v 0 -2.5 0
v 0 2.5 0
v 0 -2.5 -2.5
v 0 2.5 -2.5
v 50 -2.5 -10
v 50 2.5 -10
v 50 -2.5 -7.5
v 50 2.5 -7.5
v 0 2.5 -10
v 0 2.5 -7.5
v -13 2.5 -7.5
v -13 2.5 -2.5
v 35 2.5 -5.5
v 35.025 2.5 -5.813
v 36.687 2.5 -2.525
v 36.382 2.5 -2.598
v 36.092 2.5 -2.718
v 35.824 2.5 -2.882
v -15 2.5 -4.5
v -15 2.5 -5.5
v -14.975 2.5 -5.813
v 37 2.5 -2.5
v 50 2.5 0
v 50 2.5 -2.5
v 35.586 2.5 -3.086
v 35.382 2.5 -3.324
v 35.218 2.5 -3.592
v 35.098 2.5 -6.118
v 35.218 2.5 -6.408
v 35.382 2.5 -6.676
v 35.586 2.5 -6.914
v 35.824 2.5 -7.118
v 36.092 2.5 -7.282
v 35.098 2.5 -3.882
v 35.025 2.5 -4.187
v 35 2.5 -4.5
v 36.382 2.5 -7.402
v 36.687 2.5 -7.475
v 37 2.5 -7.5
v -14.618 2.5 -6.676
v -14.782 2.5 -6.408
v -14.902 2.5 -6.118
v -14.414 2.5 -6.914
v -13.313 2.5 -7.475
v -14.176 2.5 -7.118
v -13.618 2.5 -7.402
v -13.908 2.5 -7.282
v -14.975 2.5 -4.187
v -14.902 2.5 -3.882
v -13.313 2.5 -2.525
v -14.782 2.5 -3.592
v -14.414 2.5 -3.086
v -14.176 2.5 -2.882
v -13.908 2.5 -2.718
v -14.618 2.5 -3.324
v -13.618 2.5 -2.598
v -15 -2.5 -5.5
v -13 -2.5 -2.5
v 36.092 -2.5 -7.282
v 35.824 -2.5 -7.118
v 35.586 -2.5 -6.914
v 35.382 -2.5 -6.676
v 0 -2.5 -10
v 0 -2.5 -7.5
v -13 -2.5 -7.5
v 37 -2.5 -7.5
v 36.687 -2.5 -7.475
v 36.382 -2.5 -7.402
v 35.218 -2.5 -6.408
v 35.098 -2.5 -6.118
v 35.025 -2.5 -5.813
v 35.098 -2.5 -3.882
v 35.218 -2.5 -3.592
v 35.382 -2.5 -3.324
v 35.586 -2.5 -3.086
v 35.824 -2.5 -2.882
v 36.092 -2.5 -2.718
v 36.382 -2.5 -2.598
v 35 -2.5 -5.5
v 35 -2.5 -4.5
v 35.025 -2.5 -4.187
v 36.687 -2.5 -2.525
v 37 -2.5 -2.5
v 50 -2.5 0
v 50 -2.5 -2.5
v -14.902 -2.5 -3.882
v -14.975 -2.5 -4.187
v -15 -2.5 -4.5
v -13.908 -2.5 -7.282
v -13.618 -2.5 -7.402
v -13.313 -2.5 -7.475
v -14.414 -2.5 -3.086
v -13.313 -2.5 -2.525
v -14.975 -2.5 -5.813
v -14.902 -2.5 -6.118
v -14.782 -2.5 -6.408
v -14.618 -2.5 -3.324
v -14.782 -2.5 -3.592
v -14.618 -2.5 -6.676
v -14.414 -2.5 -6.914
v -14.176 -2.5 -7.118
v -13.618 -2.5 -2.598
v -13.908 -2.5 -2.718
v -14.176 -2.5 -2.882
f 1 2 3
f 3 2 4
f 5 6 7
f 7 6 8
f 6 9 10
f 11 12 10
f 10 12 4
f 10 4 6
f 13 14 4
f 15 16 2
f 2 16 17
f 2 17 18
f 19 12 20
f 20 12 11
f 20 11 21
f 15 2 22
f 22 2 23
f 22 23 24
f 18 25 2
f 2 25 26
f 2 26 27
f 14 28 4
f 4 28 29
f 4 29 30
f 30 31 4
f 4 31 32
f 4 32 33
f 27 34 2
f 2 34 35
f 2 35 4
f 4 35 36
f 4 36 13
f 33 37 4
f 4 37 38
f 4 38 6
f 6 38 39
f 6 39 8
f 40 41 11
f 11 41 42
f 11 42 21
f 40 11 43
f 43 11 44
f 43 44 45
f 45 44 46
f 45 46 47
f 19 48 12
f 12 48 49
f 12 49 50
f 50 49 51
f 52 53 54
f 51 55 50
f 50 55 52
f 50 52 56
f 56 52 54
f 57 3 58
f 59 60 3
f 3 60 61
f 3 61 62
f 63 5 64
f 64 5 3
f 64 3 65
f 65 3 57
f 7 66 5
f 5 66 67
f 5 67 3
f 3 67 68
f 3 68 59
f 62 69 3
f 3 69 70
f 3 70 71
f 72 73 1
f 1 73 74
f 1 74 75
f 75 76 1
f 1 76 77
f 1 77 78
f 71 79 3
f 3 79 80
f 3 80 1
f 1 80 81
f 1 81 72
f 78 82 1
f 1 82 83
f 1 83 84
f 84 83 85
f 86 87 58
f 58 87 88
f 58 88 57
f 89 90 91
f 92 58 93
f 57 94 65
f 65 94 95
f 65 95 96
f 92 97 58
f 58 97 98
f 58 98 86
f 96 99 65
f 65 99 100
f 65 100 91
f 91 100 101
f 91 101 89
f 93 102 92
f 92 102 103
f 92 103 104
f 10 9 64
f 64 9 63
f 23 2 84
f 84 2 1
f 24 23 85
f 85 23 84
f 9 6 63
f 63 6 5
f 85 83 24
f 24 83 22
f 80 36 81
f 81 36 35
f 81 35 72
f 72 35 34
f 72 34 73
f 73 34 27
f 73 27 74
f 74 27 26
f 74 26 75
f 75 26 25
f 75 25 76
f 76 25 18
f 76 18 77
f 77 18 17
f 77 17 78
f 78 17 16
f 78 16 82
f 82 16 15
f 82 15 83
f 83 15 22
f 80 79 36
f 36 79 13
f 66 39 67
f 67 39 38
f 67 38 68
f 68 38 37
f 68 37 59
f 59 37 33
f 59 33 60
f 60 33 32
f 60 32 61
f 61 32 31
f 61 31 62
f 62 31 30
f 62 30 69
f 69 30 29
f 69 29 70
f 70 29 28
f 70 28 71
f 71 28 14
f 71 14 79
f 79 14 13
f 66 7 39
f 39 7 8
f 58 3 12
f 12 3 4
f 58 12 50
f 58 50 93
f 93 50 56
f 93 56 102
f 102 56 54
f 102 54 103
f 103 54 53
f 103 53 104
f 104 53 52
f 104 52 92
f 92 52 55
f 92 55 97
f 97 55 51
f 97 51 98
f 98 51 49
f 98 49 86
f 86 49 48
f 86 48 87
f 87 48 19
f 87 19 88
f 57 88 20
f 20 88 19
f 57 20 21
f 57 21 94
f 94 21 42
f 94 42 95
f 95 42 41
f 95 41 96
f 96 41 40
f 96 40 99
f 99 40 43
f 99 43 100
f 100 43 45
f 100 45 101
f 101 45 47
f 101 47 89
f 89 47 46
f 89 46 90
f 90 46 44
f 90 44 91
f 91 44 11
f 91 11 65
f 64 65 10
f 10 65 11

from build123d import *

# Parameters (mm, degrees)
CROQUIS1_W              = 50
CROQUIS1_H              = 10
SALIENTE_EXTRUIR1_DEPTH = 2.5
CORTAR_EXTRUIR1_DEPTH   = 52.23475383
SALIENTE_EXTRUIR2_DEPTH = 5


with BuildPart() as part:
    # Croquis1 → Saliente-Extruir1 (new, symmetric)
    with BuildSketch(Plane(origin=(0, 0, 0), x_dir=(1, 0, 0), z_dir=(0, 1, 0))):
        with Locations((25, 5)):
            Rectangle(CROQUIS1_W, CROQUIS1_H)
    extrude(amount=SALIENTE_EXTRUIR1_DEPTH, both=True)

    # Croquis2 → Cortar-Extruir1 (cut, through all)
    with BuildSketch(Plane(origin=(0, 2.5, 0), x_dir=(1, 0, 0), z_dir=(0, 1, 0))):
        with BuildLine():
            Line((50, 7.5), (37, 7.5))
            ThreePointArc((37, 7.5), (35.585786438, 6.914213562), (35, 5.5))
            Line((35, 5.5), (35, 4.5))
            ThreePointArc((35, 4.5), (35.585786438, 3.085786438), (37, 2.5))
            Line((37, 2.5), (50, 2.5))
            Line((50, 2.5), (50, 7.5))
        make_face()
    extrude(amount=-CORTAR_EXTRUIR1_DEPTH, mode=Mode.SUBTRACT)

    # Croquis3 → Saliente-Extruir2 (add)
    with BuildSketch(Plane(origin=(0, 2.5, 0), x_dir=(1, 0, 0), z_dir=(0, 1, 0))):
        with BuildLine():
            Line((0, 2.5), (-13, 2.5))
            ThreePointArc((-13, 2.5), (-14.414213562, 3.085786438), (-15, 4.5))
            Line((-15, 4.5), (-15, 5.5))
            ThreePointArc((-15, 5.5), (-14.414213562, 6.914213562), (-13, 7.5))
            Line((-13, 7.5), (0, 7.5))
            Line((0, 7.5), (0, 2.5))
        make_face()
    extrude(amount=-SALIENTE_EXTRUIR2_DEPTH)


solid = part.part
